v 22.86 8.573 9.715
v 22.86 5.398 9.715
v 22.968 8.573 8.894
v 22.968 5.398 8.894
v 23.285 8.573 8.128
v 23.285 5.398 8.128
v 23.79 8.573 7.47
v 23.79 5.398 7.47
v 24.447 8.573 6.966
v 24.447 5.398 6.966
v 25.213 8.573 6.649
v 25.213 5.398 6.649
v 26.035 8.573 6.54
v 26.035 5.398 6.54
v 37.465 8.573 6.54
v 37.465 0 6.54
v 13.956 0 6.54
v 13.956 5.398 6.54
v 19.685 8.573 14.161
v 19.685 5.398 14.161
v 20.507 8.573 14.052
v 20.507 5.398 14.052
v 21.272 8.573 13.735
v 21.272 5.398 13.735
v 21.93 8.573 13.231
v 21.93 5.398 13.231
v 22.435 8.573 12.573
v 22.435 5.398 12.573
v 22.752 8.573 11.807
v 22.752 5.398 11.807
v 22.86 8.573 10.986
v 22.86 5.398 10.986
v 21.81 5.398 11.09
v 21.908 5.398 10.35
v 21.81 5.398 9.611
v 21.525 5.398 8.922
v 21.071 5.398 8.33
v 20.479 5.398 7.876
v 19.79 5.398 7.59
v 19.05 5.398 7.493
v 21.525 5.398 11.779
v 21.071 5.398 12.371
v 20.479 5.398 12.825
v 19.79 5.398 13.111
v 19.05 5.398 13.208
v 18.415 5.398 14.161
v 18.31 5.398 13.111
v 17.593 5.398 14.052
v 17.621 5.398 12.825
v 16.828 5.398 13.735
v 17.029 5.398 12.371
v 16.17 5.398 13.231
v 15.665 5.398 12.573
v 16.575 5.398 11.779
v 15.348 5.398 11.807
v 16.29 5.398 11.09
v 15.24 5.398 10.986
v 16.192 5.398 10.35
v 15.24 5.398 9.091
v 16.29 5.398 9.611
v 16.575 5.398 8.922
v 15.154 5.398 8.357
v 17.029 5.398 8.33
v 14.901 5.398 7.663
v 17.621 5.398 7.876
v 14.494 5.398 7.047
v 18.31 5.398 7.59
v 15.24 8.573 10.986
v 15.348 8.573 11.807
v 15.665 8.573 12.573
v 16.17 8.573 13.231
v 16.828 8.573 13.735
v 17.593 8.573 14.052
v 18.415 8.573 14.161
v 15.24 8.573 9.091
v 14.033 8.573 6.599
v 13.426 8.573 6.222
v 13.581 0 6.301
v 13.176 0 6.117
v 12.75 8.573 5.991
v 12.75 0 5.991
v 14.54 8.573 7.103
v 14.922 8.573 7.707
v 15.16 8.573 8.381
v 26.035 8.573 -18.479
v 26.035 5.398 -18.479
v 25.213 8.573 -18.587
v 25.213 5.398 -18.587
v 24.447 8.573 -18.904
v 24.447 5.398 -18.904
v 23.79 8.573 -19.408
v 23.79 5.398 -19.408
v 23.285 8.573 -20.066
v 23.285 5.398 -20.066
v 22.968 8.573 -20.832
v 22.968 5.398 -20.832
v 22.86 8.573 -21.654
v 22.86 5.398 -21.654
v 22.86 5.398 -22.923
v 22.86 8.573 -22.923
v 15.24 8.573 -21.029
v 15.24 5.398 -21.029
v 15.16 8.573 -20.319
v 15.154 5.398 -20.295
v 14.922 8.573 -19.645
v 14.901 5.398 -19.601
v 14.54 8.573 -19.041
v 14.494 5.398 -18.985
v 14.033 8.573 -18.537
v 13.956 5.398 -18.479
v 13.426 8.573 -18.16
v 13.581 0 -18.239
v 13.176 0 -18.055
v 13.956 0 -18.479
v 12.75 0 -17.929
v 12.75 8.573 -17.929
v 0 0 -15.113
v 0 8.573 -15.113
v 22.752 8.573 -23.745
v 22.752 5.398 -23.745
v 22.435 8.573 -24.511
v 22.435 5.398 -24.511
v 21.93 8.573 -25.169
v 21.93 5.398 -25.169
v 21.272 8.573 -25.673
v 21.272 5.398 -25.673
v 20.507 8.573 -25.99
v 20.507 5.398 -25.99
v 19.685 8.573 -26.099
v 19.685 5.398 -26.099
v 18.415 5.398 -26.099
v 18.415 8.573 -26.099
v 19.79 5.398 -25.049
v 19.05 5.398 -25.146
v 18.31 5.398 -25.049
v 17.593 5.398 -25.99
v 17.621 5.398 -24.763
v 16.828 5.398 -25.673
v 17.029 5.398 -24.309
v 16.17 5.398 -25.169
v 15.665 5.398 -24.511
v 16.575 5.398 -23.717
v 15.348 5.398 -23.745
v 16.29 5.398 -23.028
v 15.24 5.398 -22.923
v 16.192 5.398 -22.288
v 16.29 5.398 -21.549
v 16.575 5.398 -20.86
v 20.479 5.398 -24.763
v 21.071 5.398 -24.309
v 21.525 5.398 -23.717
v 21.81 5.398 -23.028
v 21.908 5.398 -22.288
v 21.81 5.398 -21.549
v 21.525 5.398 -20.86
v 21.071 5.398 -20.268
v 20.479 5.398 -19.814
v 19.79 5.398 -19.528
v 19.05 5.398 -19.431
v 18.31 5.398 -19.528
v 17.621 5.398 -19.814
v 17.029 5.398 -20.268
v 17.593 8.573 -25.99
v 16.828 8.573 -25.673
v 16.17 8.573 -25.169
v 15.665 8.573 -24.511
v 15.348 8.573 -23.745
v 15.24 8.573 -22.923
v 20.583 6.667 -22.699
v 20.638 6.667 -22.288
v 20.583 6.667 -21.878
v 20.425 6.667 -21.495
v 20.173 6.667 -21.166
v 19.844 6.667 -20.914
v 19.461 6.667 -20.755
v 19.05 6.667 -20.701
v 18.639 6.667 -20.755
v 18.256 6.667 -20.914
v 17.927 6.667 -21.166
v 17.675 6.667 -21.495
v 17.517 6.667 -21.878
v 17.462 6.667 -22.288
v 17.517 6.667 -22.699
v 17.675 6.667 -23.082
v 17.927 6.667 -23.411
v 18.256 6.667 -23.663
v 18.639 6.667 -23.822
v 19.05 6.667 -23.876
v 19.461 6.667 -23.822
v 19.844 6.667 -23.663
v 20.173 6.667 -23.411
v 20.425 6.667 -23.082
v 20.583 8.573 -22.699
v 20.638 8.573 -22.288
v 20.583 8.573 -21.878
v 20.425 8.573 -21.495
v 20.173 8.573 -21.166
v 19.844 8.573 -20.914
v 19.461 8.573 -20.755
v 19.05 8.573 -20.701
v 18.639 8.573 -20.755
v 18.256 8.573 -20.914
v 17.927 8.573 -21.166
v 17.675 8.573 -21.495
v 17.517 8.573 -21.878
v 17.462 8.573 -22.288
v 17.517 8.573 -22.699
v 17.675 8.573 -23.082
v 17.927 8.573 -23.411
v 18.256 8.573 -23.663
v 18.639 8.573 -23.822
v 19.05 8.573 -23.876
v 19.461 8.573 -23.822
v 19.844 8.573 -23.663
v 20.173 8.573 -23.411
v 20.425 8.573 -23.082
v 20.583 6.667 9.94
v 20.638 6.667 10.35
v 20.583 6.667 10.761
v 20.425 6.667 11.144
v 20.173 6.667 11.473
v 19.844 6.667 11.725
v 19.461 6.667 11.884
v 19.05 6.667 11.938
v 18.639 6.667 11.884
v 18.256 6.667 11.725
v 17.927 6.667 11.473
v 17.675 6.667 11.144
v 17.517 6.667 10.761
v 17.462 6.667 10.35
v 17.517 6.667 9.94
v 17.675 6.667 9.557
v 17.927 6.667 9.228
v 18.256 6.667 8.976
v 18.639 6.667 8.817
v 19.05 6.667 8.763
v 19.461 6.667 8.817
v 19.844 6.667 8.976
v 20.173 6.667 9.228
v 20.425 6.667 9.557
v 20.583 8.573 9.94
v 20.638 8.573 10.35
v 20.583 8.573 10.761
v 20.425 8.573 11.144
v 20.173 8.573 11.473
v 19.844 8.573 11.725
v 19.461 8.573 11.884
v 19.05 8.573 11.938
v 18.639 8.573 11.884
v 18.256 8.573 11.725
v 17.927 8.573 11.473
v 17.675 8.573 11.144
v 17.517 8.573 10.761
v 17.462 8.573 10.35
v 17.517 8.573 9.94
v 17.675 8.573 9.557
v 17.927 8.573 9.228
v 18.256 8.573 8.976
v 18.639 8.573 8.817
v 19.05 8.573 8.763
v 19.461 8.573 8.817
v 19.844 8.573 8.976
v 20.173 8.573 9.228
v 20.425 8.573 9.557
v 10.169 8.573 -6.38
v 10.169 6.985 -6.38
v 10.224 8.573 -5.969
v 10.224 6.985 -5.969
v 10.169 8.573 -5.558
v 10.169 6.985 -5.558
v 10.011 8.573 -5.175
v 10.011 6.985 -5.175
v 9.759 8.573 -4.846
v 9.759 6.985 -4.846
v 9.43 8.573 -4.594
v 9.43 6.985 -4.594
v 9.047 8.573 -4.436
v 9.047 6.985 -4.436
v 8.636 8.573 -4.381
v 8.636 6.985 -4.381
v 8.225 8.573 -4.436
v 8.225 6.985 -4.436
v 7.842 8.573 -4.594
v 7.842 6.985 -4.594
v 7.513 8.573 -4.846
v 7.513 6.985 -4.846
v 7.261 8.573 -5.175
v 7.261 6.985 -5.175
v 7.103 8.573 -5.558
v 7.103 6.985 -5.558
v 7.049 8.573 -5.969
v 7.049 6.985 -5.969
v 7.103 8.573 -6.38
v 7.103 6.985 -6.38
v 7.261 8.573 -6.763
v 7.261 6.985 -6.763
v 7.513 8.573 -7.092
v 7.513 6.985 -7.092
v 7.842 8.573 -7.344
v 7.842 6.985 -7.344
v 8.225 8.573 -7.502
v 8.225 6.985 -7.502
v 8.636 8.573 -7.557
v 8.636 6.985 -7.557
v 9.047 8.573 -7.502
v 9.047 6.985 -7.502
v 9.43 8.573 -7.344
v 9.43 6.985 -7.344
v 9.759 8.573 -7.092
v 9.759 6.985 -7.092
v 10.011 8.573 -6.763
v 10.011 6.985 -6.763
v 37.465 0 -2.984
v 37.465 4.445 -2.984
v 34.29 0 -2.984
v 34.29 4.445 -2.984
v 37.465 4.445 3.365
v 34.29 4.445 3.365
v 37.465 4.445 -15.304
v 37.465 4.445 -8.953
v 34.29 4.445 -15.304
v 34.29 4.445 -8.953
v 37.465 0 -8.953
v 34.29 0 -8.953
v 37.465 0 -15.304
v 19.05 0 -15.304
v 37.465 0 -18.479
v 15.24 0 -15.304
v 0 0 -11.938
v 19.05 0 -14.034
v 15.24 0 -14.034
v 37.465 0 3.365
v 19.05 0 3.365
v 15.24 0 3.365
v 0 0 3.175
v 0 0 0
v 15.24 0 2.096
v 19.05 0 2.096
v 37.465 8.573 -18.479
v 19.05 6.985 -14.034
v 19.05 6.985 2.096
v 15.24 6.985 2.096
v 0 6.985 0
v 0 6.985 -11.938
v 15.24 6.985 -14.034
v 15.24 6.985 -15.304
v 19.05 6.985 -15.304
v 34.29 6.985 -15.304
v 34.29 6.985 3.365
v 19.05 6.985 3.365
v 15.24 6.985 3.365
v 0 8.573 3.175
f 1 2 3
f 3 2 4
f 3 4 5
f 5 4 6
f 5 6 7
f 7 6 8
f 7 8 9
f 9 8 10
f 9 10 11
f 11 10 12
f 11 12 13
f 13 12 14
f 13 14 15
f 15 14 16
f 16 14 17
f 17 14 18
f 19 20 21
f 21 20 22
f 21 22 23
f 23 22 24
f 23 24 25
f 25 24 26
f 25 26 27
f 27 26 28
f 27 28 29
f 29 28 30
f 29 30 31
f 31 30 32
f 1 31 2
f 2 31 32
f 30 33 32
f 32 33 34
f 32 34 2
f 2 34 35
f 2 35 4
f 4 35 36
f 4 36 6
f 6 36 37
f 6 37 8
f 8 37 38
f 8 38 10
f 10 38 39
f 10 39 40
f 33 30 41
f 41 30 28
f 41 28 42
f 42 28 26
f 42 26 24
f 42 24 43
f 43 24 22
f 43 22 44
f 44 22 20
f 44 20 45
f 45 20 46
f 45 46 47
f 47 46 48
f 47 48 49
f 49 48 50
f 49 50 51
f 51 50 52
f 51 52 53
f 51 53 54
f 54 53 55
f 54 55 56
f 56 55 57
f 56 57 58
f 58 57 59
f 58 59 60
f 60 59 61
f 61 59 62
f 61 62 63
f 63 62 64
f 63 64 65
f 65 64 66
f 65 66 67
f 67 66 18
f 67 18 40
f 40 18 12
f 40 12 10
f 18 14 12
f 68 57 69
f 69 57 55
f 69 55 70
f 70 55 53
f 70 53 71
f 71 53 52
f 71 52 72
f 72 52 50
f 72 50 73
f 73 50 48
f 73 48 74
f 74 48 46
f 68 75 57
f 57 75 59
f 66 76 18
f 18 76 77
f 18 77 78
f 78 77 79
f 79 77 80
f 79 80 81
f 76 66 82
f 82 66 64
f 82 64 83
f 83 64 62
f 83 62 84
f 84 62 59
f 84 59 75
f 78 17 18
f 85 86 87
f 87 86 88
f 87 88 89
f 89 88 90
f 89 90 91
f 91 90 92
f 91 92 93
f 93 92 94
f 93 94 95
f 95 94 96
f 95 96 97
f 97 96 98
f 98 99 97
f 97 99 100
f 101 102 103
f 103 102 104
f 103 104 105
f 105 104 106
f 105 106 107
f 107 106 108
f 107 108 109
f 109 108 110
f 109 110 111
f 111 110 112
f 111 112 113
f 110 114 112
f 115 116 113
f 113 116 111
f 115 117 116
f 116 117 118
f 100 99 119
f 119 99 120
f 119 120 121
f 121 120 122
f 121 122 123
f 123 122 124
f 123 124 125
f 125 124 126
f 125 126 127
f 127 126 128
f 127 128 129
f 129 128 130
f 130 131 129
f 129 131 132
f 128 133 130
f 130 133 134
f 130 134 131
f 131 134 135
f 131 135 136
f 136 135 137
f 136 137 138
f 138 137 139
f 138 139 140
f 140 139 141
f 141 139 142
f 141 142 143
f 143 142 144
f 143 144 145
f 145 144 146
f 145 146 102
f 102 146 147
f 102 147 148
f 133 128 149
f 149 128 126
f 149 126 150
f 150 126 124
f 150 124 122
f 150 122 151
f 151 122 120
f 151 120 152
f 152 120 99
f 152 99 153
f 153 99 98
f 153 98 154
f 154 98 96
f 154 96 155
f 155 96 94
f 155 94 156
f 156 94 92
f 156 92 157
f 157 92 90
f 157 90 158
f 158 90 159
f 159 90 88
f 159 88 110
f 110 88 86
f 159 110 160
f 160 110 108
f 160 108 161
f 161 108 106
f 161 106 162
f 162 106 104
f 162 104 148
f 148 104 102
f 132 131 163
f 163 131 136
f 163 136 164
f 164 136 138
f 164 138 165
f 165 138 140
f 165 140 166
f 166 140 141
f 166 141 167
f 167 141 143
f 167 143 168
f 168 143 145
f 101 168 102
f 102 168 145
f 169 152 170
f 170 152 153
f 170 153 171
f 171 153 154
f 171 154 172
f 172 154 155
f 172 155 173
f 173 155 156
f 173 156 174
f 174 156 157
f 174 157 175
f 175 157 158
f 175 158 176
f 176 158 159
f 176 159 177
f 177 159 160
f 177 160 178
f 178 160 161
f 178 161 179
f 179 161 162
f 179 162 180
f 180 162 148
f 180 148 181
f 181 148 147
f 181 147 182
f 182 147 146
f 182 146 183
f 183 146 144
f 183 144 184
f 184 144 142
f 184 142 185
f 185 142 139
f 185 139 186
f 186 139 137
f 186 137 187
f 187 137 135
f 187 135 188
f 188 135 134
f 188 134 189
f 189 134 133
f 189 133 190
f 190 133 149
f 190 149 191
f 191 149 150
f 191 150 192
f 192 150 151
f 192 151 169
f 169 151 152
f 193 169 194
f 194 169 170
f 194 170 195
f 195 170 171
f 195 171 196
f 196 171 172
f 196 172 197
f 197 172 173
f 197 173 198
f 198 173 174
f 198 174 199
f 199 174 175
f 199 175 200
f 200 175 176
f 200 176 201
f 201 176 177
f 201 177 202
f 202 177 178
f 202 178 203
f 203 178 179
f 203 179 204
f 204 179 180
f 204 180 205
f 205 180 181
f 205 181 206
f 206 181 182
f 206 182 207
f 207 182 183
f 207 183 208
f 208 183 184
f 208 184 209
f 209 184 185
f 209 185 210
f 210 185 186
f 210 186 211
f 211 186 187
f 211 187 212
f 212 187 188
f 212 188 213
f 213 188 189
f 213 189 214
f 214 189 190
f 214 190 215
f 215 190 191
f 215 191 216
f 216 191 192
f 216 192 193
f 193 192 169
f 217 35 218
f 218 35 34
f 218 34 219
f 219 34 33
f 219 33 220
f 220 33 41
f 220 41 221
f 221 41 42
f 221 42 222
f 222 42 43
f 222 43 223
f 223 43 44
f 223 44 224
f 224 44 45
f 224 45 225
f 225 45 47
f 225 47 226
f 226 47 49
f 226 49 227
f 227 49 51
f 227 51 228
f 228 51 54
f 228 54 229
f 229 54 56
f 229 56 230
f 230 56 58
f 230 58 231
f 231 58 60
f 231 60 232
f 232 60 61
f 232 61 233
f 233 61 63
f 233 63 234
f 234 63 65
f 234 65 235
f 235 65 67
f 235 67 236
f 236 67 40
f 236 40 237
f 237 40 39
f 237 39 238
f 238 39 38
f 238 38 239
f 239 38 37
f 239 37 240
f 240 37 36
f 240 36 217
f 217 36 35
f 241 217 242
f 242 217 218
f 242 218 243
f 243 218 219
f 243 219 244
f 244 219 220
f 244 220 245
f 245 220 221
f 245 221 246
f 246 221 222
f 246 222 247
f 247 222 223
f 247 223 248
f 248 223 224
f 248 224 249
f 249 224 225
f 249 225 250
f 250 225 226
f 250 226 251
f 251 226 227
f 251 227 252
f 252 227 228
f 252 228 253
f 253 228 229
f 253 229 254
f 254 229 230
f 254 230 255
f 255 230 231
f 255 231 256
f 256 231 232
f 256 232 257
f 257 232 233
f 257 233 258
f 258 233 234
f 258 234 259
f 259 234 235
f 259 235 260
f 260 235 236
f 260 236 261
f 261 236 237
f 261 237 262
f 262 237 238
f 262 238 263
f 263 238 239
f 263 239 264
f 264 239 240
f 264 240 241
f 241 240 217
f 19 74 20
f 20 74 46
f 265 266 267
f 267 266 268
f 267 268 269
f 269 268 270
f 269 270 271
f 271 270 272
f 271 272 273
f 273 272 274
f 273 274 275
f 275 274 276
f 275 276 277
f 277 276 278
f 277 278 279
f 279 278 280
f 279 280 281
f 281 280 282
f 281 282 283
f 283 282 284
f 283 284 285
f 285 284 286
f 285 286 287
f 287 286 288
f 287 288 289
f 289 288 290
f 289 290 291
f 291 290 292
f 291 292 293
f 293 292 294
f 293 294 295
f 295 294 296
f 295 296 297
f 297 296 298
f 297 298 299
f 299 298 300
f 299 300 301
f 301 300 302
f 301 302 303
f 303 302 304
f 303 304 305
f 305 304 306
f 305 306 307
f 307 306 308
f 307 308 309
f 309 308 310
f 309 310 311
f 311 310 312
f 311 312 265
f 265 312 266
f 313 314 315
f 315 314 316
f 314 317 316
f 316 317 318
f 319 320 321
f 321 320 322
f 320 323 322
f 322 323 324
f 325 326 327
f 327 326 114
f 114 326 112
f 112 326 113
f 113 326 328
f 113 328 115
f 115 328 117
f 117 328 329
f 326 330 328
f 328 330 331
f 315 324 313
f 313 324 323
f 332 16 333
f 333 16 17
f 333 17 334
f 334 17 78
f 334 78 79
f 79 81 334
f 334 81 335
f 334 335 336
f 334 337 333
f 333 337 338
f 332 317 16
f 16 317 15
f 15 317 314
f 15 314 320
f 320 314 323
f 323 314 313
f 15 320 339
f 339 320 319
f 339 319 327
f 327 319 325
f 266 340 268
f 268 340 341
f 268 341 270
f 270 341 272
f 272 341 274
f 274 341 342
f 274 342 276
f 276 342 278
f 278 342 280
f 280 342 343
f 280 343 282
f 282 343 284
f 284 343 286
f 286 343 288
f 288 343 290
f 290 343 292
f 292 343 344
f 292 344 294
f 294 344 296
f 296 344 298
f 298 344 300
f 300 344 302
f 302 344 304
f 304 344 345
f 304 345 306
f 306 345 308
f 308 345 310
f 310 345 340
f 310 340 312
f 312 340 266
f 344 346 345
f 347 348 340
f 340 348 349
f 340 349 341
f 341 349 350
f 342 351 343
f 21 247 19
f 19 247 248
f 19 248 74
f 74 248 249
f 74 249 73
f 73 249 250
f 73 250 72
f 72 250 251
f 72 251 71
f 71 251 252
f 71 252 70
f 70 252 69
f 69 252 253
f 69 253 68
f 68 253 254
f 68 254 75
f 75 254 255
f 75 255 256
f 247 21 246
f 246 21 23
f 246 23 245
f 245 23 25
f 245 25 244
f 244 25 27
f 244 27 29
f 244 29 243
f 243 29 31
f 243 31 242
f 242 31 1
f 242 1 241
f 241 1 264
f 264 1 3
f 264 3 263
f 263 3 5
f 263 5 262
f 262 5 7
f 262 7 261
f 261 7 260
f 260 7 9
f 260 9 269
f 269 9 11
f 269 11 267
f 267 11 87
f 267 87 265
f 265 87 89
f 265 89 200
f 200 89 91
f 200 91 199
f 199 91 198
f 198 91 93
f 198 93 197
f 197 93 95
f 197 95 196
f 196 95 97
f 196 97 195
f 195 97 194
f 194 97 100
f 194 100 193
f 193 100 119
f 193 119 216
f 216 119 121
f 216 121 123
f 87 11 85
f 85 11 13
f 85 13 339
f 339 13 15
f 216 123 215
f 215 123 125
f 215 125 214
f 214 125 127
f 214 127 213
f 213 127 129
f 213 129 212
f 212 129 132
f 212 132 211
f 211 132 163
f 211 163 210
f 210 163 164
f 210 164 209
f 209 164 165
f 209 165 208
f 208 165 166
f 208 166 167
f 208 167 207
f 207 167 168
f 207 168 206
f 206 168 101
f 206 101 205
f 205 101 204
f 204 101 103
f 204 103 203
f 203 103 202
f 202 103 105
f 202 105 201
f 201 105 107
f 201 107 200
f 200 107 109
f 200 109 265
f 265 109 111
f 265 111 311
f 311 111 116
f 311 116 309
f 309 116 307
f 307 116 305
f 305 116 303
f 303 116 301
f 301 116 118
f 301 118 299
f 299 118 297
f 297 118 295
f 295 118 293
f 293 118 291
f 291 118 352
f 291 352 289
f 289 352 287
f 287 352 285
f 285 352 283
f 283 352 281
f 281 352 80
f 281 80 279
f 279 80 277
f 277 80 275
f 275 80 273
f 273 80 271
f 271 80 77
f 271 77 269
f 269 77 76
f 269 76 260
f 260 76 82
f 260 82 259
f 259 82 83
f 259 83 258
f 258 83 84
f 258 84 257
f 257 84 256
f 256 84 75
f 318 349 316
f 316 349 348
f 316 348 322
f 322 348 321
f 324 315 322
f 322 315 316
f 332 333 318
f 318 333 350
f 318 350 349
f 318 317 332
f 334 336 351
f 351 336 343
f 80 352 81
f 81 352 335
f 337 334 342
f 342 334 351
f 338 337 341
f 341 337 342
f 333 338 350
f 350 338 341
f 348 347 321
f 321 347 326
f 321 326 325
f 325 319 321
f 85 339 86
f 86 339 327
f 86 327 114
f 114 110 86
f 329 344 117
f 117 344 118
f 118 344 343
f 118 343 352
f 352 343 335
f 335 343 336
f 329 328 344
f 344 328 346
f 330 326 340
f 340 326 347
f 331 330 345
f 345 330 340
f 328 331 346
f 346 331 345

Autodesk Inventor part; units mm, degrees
ref_plane "YZ Plane" through (0, 0, 0) normal (1, 0, 0) x (0, 1, 0)
ref_plane "XZ Plane" through (0, 0, 0) normal (0, 1, 0) x (-1, 0, 0)
ref_plane "XY Plane" through (0, 0, 0) normal (0, 0, 1) x (1, 0, 0)
sketch "Sketch1" plane through (0, 0, 0) normal (0, 1, 0) x (-1, 0, 0)
  line L0 (0, 0) -> (0, -11.938)
  line L1 (-15.24, 3.3655) -> (-15.24, -15.3035)
  line L2 (0, 0) -> (-15.24, 3.3655)
  line L3 (0, -11.938) -> (-15.24, -15.3035)
  line L4 (-15.24, 3.3655) -> (-19.05, 3.3655)
  line L5 (-19.05, 3.3655) -> (-19.05, 2.0955)
  line L6 (-19.05, 2.0955) -> (-15.24, 2.0955)
  line L7 (-15.24, 2.0955) -> (-15.24, 3.3655)
  line L8 (-15.24, -15.3035) -> (-19.05, -15.3035)
  line L9 (-19.05, -15.3035) -> (-19.05, -14.0335)
  line L10 (-19.05, -14.0335) -> (-15.24, -14.0335)
  line L11 (-15.24, -14.0335) -> (-15.24, -15.3035)
  line L12 (0, 0) -> (0, 3.175)
  line L13 (-15.24, 3.3655) -> (-15.24, 6.5405)
  line L14 (0, -11.938) -> (0, -15.113)
  line L15 (-15.24, -15.3035) -> (-15.24, -18.4785)
  line L16 (-15.24, -18.4785) -> (0, -15.113)
  line L17 (0, 3.175) -> (-15.24, 6.5405)
  line L18 (-15.24, 6.5405) -> (-34.29, 6.5405)
  line L19 (-19.05, 3.3655) -> (-34.29, 3.3655)
  line L20 (-34.29, 3.3655) -> (-34.29, 6.5405)
  line L21 (-15.24, -18.4785) -> (-34.29, -18.4785)
  line L22 (-34.29, -18.4785) -> (-34.29, -15.3035)
  line L23 (-34.29, -15.3035) -> (-19.05, -15.3035)
  line L24 (-34.29, 6.5405) -> (-37.465, 6.5405)
  line L25 (-37.465, 6.5405) -> (-37.465, -18.4785)
  line L26 (-37.465, -18.4785) -> (-34.29, -18.4785)
  line L27 (-34.29, -18.4785) -> (-34.29, 6.5405)
  dimension "d0" = 11.938
  dimension "d1" = 15.24
  dimension "d2" = 18.669
  dimension "d3" = 3.3655
  dimension "d4" = 3.81
  dimension "d5" = 1.27
  dimension "d6" = 3.81
  dimension "d7" = 1.27
  dimension "d8" = 3.175
  dimension "d9" = 3.175
  dimension "d10" = 3.175
  dimension "d11" = 3.175
  dimension "d12" = 19.05
  dimension "d13" = 3.175
extrude "Extrusion1" add sketch "Sketch1" along normal blind 6.985 contours L2 L13 L17 L12 | L14 L16 L15 L3 | L1 L6 L5 L4 | L4 L19 L20 L18 L13 | L8 L9 L10 L1 | L15 L21 L22 L23 L8 | L27 L22 L26 L25 L24 L20
sketch "Sketch2" plane through (0, 6.985, 0) normal (0, 1, 0) x (1, 0, 0)
  line L0 (0, 11.938) -> (15.24, 15.3035) projected
  line L1 (15.24, 15.3035) -> (15.24, 14.0335) projected
  line L2 (15.24, 14.0335) -> (19.05, 14.0335) projected
  line L3 (19.05, 14.0335) -> (19.05, 15.3035) projected
  line L4 (19.05, 15.3035) -> (34.29, 15.3035) projected
  line L5 (34.29, 15.3035) -> (34.29, -3.3655) projected
  line L6 (34.29, -3.3655) -> (19.05, -3.3655) projected
  line L7 (19.05, -3.3655) -> (19.05, -2.0955) projected
  line L8 (19.05, -2.0955) -> (15.24, -2.0955) projected
  line L9 (15.24, -2.0955) -> (15.24, -3.3655) projected
  line L10 (15.24, -3.3655) -> (0, 0) projected
  line L11 (0, 0) -> (0, -3.175) projected
  line L12 (0, -3.175) -> (15.24, -6.5405) projected
  line L13 (15.24, -6.5405) -> (37.465, -6.5405) projected
  line L14 (37.465, -6.5405) -> (37.465, 18.4785) projected
  line L15 (37.465, 18.4785) -> (15.24, 18.4785) projected
  line L16 (15.24, 18.4785) -> (0, 15.113) projected
  line L17 (0, 15.113) -> (0, 11.938) projected
  line L18 (0, 0) -> (0, -3.175) projected
  line L19 (15.24, 18.4785) -> (0, 15.113) projected
  line L20 (0, -3.175) -> (0, 15.113)
extrude "Extrusion2" add sketch "Sketch2" along normal blind 1.5875
sketch "Sketch3" plane through (37.465, 0, 6.5405) normal (1, 0, 0) x (0, 0, -1)
  line L0 (21.844, 0) -> (21.844, 6.985) projected
  line L1 (21.844, 0) -> (3.175, 0) projected
  line L2 (3.175, 0) -> (3.175, 6.985) projected
  line L3 (21.844, 6.985) -> (3.175, 6.985) projected
  line L4 (3.175, 0) -> (3.175, 6.985) projected
  line L5 (3.175, 4.445) -> (9.525, 4.445)
  line L6 (9.525, 4.445) -> (9.525, 0)
  line L7 (9.525, 0) -> (3.175, 0)
  line L8 (3.175, 0) -> (3.175, 4.445)
  line L9 (21.844, 0) -> (21.844, 6.985) projected
  line L10 (21.844, 0) -> (15.494, 0)
  line L11 (15.494, 0) -> (15.494, 4.445)
  line L12 (15.494, 4.445) -> (21.844, 4.445)
  line L13 (21.844, 4.445) -> (21.844, 0)
  line L14 (0, 0) -> (25.019, 0) projected
  point P0 (6.5405, 0)
  dimension "d18" = 6.35
  dimension "d19" = 6.35
  dimension "d20" = 4.445
  dimension "d21" = 4.445
extrude "Extrusion3" cut sketch "Sketch3" against normal blind 3.175 contours L1 L11 L12 L0 | L1 L2 L5 L6
sketch "Sketch5" plane through (0, 6.985, 0) normal (0, -1, 0) x (1, 0, 0)
  circle A0 centre (8.636, -5.969) radius 1.5875
  line L0 (0, 0) -> (0, 3.175) projected
  line L1 (0, -11.938) -> (0, 0) projected
  dimension "d24" = 3.175
  dimension "d25" = 8.636
extrude "Extrusion4" cut sketch "Sketch5" against normal blind 25.4
sketch "Sketch6" plane through (0, 8.5725, 0) normal (0, 1, 0) x (1, 0, 0)
  line L0 (37.465, 18.4785) -> (15.24, 18.4785) projected
  line L1 (15.24, -6.5405) -> (37.465, -6.5405) projected
  line L2 (15.24, 18.4785) -> (0, 15.113) projected
  line L3 (15.24, 18.4785) -> (22.86, 18.4785)
  line L4 (22.86, 18.4785) -> (22.86, 26.0985)
  line L5 (22.86, 26.0985) -> (15.24, 26.0985)
  line L6 (15.24, 26.0985) -> (15.24, 18.4785)
  line L7 (15.24, -6.5405) -> (22.86, -6.5405)
  line L8 (22.86, -6.5405) -> (22.86, -14.1605)
  line L9 (22.86, -14.1605) -> (15.24, -14.1605)
  line L10 (15.24, -14.1605) -> (15.24, -6.5405)
  point P0 (0, 0)
  dimension "d28" = 7.62
  dimension "d29" = 7.62
  dimension "d30" = 7.62
  dimension "d31" = 7.62
extrude "Extrusion5" add sketch "Sketch6" against normal blind 3.175
sketch "Sketch7" plane through (0, 5.3975, 0) normal (0, -1, 0) x (1, 0, 0)
  line L0 (22.86, 6.5405) -> (15.24, 6.5405) projected
  line L1 (22.86, 6.5405) -> (22.86, 14.1605) projected
  line L2 (22.86, 14.1605) -> (15.24, 14.1605) projected
  line L3 (15.24, 14.1605) -> (15.24, 6.5405) projected
  line L4 (15.24, -18.4785) -> (22.86, -18.4785) projected
  line L5 (15.24, -18.4785) -> (15.24, -26.0985) projected
  line L6 (15.24, -26.0985) -> (22.86, -26.0985) projected
  line L7 (22.86, -26.0985) -> (22.86, -18.4785) projected
  circle A0 centre (19.05, 10.3505) radius 1.5875
  circle A1 centre (19.05, -22.2885) radius 1.5875
  point P0 (0, 0)
  dimension "d34" = 3.175
  dimension "d35" = 3.175
extrude "Extrusion6" cut sketch "Sketch7" against normal through all contours A0 | A1
chamfer "Chamfer1" distance 1.27 angle 45 2 edges at (17.4625, 5.3975, 10.3505) (17.4625, 5.3975, -22.2885)
fillet "Fillet1" radius 3.175 8 edges at (15.24, 6.985, -26.0985) (22.86, 6.985, -26.0985) (15.24, 6.985, -18.4785) (22.86, 6.985, -18.4785) (15.24, 6.985, 6.5405) (15.24, 6.985, 14.1605) (22.86, 6.985, 14.1605) (22.86, 6.985, 6.5405)
equation "\"d3\" = -0.5 * d0 + 0.5 * d2"
properties part number "phototransistorMount1" material "ABS Plastic"
